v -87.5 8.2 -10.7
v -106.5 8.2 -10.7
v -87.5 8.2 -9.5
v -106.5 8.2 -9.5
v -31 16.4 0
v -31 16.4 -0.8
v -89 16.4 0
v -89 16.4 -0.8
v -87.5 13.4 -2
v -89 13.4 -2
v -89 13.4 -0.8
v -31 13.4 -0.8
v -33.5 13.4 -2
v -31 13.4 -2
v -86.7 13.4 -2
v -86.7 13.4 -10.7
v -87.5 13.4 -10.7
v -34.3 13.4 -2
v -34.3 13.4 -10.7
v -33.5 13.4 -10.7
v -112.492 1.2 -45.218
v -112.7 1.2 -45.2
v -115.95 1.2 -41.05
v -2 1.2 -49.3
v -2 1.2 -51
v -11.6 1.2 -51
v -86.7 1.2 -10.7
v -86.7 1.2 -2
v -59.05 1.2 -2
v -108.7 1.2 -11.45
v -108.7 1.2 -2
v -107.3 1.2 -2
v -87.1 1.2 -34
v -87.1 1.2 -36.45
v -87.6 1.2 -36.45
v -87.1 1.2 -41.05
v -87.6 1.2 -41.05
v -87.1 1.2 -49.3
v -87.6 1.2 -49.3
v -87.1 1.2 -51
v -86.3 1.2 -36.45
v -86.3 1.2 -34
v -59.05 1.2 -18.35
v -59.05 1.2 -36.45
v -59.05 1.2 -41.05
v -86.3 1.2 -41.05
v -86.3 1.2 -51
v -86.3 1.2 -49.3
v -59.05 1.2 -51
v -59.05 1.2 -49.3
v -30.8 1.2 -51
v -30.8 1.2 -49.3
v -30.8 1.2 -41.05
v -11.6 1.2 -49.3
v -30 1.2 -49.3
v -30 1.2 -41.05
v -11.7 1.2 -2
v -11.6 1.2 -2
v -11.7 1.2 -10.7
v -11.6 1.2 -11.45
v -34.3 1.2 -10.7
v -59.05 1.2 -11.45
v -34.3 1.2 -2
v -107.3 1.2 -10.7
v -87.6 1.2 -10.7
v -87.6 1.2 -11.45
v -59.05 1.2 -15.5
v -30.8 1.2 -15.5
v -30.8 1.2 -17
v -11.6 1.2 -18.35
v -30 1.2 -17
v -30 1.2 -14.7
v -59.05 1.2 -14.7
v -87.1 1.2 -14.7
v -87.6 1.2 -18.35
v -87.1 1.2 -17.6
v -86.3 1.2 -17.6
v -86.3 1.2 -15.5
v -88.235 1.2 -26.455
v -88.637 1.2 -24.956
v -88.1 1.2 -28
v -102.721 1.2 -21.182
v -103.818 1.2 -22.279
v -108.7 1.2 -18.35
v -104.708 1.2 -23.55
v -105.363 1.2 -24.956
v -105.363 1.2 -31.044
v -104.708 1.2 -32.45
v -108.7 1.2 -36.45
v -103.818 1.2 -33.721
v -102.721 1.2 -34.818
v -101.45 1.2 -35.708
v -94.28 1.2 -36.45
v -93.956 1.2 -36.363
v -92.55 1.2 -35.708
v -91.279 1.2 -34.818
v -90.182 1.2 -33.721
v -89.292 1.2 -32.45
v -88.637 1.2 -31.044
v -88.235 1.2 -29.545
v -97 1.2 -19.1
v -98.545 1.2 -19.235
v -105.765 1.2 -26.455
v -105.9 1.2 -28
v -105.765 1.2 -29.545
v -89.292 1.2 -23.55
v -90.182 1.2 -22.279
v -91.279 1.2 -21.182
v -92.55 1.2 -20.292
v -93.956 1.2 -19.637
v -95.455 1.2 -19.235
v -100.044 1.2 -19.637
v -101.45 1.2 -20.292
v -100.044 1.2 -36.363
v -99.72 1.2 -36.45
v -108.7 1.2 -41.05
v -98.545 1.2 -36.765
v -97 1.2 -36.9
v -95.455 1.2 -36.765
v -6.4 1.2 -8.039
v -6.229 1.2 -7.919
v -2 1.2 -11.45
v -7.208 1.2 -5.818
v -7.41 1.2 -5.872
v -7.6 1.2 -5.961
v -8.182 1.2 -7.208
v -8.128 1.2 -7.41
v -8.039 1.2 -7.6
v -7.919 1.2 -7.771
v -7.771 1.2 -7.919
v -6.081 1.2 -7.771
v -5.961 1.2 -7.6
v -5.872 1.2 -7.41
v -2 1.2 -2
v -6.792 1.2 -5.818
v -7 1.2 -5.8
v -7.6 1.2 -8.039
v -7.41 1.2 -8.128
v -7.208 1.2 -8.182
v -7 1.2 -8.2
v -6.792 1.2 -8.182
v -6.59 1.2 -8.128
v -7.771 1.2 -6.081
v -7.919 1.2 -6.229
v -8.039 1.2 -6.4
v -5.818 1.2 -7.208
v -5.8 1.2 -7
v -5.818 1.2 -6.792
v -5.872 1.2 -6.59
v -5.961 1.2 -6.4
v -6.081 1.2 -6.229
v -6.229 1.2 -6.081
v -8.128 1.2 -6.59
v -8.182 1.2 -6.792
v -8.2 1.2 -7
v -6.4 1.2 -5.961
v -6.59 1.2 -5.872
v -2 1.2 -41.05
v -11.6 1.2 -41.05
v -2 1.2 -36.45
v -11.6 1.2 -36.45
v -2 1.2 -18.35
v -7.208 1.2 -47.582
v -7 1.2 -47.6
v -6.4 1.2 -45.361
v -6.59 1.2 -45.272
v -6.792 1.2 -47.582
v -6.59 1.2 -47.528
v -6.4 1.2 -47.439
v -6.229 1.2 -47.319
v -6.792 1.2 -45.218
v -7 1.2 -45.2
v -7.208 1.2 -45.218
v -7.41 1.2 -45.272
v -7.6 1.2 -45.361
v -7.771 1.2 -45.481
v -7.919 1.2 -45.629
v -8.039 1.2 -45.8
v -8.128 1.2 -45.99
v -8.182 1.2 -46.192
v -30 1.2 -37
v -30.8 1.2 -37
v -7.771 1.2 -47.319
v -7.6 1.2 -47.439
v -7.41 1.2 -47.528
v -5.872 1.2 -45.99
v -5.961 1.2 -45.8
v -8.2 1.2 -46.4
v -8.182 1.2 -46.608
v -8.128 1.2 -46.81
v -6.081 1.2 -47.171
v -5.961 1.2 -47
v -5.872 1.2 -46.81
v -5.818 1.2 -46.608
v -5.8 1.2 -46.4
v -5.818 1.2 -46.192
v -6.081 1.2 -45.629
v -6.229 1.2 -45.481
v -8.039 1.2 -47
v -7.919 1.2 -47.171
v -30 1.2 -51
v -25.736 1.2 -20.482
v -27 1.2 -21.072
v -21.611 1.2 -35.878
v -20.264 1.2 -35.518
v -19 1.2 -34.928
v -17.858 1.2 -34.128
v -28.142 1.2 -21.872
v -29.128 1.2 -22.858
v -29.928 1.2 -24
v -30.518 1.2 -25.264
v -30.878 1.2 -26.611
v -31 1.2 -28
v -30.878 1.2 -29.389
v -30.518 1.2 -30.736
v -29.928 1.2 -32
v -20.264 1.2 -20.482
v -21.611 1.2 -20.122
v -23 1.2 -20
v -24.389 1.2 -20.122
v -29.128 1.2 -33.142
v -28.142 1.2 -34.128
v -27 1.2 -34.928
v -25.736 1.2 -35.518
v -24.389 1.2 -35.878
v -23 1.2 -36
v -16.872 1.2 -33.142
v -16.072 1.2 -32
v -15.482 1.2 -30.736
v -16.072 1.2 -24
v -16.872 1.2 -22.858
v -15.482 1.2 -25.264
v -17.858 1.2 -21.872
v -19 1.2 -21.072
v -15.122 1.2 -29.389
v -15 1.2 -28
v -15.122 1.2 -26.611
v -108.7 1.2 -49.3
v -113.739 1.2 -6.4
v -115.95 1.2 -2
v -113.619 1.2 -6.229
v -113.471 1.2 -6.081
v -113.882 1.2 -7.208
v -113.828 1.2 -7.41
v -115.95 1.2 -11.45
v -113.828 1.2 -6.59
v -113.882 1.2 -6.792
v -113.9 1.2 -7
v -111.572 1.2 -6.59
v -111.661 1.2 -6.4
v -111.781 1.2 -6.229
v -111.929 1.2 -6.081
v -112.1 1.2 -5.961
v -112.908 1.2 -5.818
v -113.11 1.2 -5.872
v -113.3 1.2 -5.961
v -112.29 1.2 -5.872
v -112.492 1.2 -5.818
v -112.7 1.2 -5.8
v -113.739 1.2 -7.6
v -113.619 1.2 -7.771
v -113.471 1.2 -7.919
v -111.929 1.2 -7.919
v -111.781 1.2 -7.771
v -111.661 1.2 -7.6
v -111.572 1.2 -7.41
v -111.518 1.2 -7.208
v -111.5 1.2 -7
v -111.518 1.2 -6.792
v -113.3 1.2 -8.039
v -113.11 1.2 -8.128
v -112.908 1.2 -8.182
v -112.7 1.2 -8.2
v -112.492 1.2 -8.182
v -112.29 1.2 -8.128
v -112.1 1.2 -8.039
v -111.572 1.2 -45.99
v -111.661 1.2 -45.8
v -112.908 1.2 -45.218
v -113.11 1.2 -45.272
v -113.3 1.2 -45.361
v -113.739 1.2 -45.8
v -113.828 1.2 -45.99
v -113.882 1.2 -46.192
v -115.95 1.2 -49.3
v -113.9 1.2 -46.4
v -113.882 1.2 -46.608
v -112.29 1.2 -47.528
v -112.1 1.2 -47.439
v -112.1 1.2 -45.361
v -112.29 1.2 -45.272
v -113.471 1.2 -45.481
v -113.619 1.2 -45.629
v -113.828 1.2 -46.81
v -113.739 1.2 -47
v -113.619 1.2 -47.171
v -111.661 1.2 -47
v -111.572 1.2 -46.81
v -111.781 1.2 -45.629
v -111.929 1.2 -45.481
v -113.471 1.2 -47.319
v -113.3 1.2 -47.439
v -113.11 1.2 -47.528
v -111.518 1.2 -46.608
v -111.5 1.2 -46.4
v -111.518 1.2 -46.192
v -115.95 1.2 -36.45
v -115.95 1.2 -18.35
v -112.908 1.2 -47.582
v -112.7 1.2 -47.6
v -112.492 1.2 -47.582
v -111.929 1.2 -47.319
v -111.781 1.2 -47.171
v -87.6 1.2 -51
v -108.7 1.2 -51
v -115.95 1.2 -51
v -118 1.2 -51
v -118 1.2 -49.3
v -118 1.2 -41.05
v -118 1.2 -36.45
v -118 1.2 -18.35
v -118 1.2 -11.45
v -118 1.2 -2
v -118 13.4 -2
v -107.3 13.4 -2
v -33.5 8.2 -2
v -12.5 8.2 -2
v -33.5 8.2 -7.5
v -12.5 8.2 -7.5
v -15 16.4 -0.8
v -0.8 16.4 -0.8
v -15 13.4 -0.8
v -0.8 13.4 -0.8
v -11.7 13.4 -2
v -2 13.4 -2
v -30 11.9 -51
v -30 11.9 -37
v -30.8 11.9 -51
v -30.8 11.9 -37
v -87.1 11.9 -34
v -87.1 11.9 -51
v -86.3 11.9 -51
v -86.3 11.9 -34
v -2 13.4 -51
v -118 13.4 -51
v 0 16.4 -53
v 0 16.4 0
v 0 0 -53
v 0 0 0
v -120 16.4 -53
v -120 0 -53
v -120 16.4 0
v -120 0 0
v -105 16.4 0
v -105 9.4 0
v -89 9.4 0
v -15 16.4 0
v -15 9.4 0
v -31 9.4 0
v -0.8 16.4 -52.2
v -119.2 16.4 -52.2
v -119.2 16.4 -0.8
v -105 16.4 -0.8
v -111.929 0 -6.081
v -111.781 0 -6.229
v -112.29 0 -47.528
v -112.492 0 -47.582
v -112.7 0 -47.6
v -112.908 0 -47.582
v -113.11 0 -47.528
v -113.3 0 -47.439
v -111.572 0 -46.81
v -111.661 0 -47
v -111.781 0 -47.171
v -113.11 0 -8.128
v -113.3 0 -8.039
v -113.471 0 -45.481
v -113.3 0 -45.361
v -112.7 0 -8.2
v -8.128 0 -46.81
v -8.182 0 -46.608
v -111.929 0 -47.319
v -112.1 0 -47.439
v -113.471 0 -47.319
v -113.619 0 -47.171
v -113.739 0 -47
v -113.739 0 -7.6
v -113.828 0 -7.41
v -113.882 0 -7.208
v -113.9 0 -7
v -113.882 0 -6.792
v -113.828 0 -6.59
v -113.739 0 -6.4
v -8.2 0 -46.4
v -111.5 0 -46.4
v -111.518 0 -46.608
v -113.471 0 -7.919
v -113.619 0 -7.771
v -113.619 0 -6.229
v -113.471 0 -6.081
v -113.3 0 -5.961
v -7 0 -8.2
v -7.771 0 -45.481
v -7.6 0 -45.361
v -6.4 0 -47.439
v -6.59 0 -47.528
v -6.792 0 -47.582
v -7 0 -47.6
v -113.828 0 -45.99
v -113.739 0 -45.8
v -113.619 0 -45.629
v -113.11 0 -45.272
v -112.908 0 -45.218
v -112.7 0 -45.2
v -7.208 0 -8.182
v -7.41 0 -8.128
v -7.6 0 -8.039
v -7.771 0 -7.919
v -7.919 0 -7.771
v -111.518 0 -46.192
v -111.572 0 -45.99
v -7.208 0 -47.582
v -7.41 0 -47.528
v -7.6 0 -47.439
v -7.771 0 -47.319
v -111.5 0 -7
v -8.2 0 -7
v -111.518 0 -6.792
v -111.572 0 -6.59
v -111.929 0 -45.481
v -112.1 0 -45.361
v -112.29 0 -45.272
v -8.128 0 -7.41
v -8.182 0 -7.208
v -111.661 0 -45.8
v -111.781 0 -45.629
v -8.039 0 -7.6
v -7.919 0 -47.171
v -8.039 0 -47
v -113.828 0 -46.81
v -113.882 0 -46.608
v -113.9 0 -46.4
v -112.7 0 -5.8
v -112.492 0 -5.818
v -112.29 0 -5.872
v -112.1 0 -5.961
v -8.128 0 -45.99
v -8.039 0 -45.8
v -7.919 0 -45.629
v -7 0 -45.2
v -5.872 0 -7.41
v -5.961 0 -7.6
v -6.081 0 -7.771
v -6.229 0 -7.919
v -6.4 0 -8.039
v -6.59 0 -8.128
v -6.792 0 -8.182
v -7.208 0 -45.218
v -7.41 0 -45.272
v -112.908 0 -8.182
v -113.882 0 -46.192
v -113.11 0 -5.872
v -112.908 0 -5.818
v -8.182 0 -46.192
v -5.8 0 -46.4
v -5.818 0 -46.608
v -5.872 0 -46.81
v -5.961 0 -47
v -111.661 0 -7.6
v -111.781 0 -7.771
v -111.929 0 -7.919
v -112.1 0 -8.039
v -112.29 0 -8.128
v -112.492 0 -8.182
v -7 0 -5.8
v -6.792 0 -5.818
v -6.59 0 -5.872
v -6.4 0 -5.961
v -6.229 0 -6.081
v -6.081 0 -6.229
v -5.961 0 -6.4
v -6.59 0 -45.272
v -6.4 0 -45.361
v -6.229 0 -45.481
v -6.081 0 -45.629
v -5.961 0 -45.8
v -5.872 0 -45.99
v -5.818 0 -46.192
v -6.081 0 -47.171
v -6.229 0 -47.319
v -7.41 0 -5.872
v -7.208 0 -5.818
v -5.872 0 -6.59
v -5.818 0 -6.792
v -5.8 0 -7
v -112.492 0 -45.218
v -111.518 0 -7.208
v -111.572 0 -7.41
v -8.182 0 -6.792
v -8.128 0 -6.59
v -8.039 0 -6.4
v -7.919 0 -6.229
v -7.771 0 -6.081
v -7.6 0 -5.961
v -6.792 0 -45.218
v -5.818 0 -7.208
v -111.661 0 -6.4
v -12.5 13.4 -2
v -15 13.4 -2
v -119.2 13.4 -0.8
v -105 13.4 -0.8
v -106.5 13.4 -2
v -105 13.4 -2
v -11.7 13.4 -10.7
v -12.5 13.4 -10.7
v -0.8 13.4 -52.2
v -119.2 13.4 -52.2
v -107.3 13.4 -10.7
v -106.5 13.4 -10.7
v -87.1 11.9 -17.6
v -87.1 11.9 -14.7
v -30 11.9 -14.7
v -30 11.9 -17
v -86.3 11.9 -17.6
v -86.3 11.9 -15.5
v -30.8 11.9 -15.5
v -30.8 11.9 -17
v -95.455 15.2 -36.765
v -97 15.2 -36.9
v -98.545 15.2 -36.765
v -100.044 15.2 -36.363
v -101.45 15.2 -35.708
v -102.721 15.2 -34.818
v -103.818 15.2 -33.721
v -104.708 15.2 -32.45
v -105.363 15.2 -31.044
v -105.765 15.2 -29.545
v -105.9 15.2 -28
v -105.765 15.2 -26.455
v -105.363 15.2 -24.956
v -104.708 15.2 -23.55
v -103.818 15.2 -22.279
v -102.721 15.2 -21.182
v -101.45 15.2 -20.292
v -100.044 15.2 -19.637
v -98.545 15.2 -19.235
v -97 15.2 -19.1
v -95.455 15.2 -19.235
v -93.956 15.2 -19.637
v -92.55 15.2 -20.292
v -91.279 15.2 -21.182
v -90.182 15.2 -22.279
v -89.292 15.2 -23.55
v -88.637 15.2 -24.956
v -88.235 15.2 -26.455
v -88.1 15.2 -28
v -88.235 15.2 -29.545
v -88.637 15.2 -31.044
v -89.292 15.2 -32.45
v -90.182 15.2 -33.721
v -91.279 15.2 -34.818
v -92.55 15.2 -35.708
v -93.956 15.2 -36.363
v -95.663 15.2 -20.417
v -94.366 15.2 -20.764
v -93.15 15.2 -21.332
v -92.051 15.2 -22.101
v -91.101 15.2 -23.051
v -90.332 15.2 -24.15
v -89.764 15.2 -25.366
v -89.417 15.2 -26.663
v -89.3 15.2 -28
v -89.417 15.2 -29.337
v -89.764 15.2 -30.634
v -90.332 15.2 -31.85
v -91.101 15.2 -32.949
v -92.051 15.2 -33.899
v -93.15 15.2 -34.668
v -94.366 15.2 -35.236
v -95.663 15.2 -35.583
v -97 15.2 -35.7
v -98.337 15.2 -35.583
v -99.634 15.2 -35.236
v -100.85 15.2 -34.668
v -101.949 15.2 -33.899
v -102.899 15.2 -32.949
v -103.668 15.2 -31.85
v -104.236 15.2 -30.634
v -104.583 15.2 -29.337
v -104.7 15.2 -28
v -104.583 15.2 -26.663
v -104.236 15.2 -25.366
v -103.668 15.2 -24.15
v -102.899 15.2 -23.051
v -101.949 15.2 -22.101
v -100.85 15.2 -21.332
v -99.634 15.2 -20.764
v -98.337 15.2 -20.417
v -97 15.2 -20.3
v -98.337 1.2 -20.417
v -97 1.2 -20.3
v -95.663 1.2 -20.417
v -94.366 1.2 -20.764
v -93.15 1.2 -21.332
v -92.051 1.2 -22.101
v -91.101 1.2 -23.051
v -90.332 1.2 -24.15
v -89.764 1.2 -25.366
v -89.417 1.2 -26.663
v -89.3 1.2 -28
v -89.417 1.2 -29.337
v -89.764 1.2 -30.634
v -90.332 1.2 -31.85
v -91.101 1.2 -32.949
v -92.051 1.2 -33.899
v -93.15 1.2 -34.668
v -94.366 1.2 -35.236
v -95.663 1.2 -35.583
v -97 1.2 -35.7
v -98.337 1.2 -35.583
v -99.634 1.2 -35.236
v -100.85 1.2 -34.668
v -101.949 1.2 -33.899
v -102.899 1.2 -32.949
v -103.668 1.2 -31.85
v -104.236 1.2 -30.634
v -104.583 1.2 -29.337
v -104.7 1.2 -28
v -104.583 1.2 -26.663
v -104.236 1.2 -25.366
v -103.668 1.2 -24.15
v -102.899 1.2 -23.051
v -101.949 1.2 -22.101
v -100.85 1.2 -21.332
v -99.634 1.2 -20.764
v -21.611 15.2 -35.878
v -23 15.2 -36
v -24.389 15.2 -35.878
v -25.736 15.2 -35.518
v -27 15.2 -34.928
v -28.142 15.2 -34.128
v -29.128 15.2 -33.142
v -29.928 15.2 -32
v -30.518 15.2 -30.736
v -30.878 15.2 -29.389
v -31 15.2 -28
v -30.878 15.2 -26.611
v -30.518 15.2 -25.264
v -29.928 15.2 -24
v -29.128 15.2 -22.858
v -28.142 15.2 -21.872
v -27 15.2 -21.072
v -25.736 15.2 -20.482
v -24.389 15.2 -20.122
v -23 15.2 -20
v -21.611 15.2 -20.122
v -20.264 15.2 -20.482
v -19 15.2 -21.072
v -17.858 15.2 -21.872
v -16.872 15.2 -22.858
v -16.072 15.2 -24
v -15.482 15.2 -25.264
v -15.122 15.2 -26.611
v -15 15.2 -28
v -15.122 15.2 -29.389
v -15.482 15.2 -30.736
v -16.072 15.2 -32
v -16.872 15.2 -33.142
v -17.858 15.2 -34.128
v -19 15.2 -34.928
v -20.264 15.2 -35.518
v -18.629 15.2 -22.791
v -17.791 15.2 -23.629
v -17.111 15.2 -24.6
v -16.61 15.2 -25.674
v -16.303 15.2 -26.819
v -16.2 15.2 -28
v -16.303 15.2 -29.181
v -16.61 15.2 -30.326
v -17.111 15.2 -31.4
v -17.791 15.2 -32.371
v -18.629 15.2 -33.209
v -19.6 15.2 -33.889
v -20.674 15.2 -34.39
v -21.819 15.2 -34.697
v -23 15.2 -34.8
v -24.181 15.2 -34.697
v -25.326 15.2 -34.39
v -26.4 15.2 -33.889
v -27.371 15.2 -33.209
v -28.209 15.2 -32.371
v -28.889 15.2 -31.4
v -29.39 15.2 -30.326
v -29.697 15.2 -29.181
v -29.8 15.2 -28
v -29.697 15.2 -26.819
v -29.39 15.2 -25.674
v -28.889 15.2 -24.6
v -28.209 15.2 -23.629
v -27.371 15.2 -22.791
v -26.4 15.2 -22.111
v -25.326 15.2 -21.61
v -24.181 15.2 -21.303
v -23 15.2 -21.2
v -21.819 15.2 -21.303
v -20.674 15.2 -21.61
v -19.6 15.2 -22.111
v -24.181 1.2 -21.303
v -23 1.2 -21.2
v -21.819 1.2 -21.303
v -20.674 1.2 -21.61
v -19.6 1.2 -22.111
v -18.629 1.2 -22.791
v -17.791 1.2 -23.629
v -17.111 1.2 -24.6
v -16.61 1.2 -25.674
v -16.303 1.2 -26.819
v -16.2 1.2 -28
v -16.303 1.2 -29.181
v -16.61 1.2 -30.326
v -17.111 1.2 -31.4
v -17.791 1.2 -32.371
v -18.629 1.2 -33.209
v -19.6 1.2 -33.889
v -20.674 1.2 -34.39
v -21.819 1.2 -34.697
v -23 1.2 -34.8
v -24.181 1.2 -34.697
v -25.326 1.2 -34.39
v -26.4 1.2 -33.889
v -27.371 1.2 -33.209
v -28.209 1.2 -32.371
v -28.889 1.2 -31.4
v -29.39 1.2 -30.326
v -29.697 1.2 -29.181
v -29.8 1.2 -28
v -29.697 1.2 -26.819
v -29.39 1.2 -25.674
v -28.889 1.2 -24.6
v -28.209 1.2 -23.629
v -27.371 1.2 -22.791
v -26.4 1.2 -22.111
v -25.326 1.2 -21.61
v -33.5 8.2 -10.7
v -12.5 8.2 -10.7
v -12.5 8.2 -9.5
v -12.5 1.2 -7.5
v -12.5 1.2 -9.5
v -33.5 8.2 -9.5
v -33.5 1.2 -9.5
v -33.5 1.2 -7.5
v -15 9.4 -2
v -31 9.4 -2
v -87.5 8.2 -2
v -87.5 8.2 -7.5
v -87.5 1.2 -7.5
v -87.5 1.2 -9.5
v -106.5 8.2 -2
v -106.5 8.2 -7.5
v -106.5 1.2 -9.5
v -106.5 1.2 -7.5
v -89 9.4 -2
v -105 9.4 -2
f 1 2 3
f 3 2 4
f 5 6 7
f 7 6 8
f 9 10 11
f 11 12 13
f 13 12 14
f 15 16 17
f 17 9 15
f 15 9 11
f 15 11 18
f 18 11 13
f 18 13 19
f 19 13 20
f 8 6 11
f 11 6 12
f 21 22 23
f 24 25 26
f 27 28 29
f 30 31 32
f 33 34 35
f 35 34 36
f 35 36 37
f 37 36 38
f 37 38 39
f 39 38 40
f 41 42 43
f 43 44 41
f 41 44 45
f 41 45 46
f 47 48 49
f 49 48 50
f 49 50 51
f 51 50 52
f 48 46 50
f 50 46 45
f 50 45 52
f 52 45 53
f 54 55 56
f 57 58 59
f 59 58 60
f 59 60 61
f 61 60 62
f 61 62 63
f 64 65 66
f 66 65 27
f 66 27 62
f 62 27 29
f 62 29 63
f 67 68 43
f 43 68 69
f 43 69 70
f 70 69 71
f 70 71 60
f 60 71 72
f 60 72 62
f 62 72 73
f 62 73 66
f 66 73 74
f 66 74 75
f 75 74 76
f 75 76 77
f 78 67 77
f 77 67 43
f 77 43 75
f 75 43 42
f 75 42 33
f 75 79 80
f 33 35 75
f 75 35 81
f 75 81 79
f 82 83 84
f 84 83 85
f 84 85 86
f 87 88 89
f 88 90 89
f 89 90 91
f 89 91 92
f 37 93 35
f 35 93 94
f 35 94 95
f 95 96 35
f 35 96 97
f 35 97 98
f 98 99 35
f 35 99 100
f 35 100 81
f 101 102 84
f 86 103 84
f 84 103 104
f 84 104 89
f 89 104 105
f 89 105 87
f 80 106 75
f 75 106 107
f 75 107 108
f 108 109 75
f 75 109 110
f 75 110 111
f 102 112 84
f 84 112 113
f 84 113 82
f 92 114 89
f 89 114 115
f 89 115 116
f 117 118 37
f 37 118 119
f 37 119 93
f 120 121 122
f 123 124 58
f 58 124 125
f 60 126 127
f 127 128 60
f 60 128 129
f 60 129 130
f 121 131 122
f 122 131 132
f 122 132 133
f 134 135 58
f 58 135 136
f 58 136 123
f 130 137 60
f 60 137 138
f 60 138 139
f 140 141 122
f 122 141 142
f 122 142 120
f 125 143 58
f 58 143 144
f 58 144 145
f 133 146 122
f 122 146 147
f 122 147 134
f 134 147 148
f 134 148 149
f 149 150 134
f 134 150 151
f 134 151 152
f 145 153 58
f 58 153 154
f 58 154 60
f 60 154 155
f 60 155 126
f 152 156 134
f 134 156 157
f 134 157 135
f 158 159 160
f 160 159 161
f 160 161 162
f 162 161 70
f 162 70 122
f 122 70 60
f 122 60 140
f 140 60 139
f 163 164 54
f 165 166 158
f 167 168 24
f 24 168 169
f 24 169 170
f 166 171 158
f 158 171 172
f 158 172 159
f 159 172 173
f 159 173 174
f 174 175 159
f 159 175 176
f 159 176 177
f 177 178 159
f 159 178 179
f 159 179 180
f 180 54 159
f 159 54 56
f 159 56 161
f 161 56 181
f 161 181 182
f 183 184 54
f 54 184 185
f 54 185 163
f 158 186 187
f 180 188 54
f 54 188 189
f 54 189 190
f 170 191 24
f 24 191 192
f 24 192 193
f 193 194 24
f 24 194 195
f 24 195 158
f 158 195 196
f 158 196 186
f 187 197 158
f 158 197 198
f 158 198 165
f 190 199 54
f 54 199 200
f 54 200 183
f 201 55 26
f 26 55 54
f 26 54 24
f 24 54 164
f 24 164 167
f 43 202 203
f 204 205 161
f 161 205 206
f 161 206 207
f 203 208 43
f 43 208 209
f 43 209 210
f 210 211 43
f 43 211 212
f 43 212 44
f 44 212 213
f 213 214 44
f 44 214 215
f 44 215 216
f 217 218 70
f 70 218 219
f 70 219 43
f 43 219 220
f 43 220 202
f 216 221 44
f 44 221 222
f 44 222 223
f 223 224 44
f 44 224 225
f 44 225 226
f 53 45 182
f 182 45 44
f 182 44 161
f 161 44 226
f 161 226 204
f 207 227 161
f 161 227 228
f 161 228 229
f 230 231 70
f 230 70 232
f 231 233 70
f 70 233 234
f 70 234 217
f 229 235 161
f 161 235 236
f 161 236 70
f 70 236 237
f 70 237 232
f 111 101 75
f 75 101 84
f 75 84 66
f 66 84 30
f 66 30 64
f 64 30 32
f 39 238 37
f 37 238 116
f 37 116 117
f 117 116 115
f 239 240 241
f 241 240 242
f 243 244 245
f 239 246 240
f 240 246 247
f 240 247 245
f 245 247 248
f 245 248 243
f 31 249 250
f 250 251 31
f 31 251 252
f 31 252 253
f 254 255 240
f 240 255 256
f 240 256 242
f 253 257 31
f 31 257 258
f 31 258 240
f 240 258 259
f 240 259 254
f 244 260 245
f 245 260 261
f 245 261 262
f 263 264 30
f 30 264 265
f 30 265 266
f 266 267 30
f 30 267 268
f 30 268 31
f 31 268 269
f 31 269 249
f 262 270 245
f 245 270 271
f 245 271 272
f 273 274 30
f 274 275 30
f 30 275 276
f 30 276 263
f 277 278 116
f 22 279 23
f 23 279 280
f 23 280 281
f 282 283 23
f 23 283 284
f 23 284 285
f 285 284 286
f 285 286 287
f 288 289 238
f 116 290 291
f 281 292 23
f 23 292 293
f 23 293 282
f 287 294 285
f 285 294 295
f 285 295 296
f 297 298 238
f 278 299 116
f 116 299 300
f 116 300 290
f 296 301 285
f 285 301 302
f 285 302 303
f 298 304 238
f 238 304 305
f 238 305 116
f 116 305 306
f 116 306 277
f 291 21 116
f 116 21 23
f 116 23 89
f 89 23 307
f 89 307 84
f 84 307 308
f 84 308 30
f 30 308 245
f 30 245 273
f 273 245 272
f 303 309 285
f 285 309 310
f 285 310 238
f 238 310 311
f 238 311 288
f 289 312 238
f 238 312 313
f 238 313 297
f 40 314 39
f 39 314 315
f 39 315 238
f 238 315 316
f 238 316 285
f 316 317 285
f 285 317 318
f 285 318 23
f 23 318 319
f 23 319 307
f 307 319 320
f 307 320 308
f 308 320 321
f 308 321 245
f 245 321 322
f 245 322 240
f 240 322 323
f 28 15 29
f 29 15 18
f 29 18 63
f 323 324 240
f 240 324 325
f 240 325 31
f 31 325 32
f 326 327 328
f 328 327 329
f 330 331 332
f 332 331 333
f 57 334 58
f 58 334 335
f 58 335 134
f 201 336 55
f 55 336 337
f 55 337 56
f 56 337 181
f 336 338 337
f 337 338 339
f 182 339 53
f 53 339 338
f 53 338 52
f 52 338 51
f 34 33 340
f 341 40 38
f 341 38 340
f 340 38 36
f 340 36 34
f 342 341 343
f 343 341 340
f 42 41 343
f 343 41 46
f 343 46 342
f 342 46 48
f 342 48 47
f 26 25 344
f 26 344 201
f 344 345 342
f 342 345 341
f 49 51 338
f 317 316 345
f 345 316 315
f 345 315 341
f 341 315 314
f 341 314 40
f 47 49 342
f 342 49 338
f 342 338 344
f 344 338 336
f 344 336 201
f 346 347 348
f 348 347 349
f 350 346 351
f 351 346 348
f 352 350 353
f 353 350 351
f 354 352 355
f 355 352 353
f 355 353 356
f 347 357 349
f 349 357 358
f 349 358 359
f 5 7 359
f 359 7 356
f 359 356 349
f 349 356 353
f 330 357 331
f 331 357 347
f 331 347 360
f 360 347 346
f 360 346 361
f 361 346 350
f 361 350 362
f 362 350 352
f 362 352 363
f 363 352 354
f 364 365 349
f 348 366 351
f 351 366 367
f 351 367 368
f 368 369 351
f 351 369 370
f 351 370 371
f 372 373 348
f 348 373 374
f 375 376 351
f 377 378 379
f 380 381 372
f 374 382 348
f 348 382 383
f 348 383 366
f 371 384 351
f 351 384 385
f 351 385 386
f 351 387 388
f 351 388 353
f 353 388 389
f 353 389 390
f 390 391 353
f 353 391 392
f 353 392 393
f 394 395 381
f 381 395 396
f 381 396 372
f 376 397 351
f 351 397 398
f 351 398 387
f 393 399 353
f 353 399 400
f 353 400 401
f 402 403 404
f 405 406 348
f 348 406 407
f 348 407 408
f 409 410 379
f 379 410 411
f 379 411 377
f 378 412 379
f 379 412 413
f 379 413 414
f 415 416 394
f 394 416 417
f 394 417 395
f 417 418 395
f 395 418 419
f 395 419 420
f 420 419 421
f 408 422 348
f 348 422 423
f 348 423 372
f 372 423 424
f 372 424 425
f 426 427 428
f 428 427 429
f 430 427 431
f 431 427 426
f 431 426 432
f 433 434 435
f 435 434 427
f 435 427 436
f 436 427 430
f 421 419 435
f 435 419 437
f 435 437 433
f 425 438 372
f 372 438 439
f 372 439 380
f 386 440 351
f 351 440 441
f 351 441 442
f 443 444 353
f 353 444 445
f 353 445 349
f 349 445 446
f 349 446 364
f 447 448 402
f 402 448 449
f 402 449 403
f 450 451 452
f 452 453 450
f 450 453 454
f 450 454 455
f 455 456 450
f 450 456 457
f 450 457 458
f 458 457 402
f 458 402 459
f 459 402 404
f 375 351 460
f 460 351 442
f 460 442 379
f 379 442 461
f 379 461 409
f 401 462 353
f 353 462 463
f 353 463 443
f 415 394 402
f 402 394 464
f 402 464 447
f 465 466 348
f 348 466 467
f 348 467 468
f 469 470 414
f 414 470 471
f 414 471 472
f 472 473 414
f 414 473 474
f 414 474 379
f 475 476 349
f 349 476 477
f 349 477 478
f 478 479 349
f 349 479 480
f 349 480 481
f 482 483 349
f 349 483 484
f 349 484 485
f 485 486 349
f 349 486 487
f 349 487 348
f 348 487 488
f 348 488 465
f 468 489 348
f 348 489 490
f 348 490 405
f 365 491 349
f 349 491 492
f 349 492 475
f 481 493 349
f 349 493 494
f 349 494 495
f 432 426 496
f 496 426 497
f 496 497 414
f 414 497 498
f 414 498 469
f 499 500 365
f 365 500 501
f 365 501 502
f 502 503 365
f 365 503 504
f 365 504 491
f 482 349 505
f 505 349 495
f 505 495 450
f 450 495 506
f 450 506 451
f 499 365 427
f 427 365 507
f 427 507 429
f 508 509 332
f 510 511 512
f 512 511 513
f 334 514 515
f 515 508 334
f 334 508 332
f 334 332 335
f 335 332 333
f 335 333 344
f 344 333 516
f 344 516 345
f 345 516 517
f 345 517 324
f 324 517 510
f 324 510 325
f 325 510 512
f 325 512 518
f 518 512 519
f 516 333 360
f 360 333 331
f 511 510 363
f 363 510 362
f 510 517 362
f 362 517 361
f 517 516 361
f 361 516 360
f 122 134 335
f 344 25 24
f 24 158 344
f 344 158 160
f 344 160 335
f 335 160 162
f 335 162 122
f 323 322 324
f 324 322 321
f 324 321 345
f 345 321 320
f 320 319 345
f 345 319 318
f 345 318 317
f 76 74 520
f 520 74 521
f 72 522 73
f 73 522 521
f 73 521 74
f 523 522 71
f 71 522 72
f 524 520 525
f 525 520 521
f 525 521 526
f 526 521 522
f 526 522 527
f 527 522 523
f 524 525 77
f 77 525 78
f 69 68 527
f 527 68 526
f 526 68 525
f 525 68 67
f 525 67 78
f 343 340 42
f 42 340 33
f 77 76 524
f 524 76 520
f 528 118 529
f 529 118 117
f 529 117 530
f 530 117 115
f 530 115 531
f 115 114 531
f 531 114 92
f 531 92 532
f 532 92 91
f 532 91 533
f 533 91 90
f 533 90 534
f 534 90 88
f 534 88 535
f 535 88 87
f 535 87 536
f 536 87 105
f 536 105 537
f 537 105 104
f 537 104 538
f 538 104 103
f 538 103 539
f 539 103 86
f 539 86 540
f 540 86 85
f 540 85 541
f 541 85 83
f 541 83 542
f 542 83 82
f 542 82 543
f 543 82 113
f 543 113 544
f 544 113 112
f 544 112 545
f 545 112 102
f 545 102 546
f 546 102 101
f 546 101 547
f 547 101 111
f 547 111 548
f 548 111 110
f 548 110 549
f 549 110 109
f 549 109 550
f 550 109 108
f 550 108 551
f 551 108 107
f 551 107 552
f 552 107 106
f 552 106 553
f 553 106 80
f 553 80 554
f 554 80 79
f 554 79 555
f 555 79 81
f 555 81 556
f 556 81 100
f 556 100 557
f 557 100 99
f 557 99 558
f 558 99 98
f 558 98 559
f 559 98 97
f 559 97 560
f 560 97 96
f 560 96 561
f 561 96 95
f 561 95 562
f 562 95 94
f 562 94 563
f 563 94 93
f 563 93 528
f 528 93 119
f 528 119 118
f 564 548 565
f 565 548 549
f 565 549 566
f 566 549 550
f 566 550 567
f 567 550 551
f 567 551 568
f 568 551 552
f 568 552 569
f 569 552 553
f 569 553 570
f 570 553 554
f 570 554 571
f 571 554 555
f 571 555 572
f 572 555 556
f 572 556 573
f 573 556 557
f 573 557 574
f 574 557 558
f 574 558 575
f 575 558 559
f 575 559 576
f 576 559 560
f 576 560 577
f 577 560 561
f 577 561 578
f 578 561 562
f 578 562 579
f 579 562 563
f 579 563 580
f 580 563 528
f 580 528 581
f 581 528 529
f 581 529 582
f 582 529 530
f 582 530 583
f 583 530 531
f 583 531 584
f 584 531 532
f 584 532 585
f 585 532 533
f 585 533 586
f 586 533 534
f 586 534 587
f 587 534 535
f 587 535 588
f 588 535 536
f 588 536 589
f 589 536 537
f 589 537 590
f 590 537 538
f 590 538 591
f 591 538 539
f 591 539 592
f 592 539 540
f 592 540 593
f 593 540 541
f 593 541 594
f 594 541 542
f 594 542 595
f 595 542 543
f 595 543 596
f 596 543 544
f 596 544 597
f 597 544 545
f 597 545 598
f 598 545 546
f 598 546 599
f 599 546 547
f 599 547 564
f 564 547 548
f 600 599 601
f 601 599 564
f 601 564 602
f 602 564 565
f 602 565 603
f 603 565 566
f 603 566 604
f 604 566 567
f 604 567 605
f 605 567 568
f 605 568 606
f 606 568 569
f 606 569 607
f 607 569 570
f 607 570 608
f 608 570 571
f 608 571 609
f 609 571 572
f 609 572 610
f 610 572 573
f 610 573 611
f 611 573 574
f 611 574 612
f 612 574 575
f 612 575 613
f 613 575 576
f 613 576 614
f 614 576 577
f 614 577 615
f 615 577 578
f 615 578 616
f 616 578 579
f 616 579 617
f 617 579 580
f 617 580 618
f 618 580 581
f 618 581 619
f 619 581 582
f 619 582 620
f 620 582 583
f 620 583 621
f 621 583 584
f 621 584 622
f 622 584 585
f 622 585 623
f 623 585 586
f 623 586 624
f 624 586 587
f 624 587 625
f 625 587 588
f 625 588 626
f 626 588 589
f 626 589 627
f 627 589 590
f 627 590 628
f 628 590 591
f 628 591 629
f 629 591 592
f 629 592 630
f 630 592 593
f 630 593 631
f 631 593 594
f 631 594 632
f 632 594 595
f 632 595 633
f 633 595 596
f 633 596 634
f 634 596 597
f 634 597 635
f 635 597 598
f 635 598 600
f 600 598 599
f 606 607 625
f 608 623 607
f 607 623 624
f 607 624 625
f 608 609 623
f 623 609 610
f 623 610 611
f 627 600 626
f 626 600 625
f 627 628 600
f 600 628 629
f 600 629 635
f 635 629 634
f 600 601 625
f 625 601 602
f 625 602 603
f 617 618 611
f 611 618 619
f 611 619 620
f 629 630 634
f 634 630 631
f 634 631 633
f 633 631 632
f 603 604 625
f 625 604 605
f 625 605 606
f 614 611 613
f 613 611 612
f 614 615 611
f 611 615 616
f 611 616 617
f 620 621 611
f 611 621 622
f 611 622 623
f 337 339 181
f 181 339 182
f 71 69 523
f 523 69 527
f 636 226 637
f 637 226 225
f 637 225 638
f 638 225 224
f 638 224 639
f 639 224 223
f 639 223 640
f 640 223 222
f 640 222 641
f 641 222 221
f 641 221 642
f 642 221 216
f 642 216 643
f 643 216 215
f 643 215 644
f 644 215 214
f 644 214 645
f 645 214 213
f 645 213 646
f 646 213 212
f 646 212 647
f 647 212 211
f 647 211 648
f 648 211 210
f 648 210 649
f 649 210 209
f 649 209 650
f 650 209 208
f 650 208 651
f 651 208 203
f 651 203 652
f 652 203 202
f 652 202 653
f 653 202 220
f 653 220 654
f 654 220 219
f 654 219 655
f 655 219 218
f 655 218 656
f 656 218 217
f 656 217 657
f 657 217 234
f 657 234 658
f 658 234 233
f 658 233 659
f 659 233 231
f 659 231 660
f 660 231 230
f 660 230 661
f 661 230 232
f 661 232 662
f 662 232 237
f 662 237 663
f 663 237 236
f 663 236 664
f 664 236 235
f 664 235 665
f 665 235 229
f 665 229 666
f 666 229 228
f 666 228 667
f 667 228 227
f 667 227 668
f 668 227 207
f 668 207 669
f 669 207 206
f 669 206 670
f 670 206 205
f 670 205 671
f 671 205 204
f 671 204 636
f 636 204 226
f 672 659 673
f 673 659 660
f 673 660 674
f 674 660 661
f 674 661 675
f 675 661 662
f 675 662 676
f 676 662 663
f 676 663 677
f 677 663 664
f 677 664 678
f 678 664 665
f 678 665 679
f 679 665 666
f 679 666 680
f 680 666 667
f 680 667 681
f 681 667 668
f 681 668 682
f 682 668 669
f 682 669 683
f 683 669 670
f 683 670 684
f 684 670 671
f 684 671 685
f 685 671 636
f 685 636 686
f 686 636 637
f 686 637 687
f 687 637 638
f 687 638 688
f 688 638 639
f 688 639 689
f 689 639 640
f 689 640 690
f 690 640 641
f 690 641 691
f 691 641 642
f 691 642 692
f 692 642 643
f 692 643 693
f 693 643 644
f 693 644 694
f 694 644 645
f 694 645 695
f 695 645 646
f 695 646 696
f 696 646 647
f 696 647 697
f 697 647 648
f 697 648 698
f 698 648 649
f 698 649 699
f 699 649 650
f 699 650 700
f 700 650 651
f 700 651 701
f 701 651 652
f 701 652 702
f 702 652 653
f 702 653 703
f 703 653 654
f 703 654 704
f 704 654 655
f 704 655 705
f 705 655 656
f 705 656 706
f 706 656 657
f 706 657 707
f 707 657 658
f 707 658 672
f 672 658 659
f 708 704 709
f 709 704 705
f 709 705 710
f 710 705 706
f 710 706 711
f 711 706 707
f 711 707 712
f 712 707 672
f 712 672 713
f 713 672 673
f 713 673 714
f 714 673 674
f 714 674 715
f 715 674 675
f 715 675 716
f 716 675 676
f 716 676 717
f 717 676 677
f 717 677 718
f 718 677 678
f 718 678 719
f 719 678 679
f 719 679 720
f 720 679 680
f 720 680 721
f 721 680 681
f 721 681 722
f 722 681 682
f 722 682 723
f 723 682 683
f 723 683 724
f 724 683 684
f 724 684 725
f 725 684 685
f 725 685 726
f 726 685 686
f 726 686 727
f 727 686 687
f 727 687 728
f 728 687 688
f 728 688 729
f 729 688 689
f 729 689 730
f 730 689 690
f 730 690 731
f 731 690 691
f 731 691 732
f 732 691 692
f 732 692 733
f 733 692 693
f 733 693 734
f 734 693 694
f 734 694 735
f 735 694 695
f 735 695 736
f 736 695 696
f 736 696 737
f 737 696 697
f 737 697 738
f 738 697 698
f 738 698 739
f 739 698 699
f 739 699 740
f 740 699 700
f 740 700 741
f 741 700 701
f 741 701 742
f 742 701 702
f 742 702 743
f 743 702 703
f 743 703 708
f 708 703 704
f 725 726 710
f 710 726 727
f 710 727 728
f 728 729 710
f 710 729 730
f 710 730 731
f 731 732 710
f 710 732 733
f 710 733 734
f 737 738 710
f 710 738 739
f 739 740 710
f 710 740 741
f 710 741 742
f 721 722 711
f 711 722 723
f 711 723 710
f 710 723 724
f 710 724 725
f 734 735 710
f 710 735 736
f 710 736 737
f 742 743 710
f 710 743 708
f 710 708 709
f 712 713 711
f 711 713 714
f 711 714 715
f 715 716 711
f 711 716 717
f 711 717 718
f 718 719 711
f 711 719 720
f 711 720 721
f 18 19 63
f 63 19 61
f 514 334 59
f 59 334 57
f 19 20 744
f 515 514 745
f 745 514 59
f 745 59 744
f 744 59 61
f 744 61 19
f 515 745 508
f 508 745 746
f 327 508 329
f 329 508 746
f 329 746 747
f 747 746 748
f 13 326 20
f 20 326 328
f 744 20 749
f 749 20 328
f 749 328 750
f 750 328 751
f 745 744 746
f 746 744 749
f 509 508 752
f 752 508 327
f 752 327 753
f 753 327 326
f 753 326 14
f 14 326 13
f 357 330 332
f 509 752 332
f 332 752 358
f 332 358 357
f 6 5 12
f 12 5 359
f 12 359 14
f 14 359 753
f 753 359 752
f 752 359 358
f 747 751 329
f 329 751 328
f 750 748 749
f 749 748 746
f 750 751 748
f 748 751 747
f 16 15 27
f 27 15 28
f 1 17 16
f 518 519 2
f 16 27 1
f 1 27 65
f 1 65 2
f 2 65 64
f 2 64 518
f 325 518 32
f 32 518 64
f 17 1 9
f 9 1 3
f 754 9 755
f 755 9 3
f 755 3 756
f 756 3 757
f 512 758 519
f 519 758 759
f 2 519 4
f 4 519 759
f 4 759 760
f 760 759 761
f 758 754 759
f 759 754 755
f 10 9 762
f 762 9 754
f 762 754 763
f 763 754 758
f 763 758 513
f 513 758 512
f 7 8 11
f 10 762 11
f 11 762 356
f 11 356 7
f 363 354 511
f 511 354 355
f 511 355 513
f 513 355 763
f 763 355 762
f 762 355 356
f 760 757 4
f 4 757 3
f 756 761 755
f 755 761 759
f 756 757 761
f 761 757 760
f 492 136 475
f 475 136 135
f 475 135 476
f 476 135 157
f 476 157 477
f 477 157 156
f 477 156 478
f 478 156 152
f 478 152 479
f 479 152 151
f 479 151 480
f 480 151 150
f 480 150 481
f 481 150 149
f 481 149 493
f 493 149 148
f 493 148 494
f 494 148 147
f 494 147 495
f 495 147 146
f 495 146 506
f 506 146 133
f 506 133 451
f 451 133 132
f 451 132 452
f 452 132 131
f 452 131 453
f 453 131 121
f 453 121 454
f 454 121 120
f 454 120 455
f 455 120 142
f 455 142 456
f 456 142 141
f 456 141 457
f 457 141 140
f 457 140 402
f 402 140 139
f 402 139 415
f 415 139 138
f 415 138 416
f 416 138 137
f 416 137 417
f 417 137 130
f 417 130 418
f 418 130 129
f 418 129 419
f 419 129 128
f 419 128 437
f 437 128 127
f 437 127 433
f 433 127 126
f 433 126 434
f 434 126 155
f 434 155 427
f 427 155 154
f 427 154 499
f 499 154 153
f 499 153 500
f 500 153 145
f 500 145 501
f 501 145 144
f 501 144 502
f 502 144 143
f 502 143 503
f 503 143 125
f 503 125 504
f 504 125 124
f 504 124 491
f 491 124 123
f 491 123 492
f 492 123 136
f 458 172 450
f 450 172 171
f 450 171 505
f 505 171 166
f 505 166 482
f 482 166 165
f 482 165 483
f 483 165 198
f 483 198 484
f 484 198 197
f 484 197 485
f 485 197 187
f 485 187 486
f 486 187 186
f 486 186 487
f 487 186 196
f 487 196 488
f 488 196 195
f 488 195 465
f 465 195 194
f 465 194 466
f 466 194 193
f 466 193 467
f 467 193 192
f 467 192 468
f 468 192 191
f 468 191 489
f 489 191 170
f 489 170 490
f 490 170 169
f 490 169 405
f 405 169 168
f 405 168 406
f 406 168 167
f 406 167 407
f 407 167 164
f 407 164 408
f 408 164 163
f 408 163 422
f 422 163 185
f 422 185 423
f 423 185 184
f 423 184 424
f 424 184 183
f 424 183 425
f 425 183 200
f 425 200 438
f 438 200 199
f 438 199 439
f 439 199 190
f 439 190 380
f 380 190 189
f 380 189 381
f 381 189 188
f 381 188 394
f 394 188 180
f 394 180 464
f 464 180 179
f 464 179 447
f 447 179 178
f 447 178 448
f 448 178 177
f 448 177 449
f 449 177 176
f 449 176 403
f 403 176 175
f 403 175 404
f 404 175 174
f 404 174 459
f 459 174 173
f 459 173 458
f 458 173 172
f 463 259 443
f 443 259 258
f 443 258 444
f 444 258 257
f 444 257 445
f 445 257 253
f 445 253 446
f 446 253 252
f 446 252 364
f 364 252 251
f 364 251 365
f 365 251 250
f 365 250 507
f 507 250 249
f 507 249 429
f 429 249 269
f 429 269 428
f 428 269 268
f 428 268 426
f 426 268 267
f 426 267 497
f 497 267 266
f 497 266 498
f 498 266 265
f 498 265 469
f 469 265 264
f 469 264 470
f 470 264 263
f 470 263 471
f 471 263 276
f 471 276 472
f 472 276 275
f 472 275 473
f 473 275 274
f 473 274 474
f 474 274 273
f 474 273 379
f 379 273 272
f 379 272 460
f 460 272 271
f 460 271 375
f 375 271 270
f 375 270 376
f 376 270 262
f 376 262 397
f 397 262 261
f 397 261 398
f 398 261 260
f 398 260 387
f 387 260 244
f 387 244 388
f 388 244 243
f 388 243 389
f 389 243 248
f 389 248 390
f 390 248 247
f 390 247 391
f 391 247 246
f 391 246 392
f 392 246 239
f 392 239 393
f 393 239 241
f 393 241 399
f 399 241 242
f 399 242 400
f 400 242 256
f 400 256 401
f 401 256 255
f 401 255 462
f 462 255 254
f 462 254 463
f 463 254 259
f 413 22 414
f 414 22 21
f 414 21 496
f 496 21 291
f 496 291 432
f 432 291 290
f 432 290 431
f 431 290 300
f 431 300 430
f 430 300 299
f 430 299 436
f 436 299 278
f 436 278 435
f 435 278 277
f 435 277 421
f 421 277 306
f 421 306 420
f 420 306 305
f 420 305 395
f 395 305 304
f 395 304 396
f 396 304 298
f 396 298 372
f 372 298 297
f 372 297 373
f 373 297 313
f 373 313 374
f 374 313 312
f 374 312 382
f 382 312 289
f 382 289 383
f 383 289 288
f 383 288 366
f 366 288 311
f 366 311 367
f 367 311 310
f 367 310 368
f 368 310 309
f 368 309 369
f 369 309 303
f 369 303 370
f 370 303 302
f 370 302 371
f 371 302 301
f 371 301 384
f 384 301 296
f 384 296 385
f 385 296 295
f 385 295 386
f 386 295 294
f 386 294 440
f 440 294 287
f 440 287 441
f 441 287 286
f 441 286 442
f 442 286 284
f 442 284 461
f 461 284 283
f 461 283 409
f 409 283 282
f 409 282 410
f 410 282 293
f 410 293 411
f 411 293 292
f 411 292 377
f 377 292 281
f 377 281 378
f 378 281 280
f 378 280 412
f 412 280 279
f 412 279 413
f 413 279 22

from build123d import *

# Parameters (mm, degrees)
SKETCH_1_W           = 120
SKETCH_1_H           = 53
EXTRUDE_2_DEPTH      = 16.4
SKETCH_4_W           = 116
SKETCH_4_H           = 49
CUT_EXTRUDE_5_DEPTH  = 15.2
SKETCH_5_W           = 118.4
SKETCH_5_H           = 51.4
CUT_EXTRUDE_6_DEPTH  = 3
SKETCH_6_W           = 57.1
SKETCH_6_H           = 36.3
EXTRUDE_3_DEPTH      = 10.7
SKETCH_7_W           = 55.5
SKETCH_7_H           = 35.5
CUT_EXTRUDE_7_DEPTH  = 10.7
SKETCH_8_W           = 3.401063497
SKETCH_8_H           = 16.4
CUT_EXTRUDE_8_DEPTH  = 10.7
SKETCH_9_R           = 8.9
EXTRUDE_4_DEPTH      = 14
SKETCH_10_R          = 7.7
CUT_EXTRUDE_9_DEPTH  = 14
SKETCH_12_W          = 1.431066628
SKETCH_12_H          = 20
CUT_EXTRUDE_10_DEPTH = 10.7
SKETCH_11_R          = 8
EXTRUDE_8_DEPTH      = 14
SKETCH_13_R          = 6.8
CUT_EXTRUDE_11_DEPTH = 14
SKETCH_14_W          = 22.6
SKETCH_14_H          = 8.7
EXTRUDE_9_DEPTH      = 12.2
SKETCH_15_W          = 21
SKETCH_15_H          = 9.750364289
CUT_EXTRUDE_12_DEPTH = 5.2
SKETCH_16_W          = 16
SKETCH_16_H          = 2
CUT_EXTRUDE_13_DEPTH = 7
SKETCH_18_W          = 21
SKETCH_18_H          = 2
CUT_EXTRUDE_14_DEPTH = 7
SKETCH_19_W          = 20.6
SKETCH_19_H          = 8.7
EXTRUDE_10_DEPTH     = 12.2
SKETCH_21_W          = 19
SKETCH_21_H          = 9.521560297
CUT_EXTRUDE_15_DEPTH = 5.2
SKETCH_23_W          = 16
SKETCH_23_H          = 2
CUT_EXTRUDE_16_DEPTH = 7
SKETCH_24_W          = 19
SKETCH_24_H          = 2
CUT_EXTRUDE_17_DEPTH = 7
SKETCH_25_R          = 1.2
CUT_EXTRUDE_18_DEPTH = 5
SKETCH_26_R          = 1.2
CUT_EXTRUDE_19_DEPTH = 5
SKETCH_27_R          = 1.2
CUT_EXTRUDE_20_DEPTH = 5
SKETCH_28_R          = 1.2
CUT_EXTRUDE_21_DEPTH = 5


with BuildPart() as part:
    # 草图1 → 凸台-拉伸2 (new body)
    with BuildSketch(Plane(origin=(0, 0, 0), x_dir=(1, 0, 0), z_dir=(0, 1, 0))):
        with Locations((-60, 26.5)):
            Rectangle(SKETCH_1_W, SKETCH_1_H)
    extrude(amount=EXTRUDE_2_DEPTH)

    # 草图4 → 切除-拉伸5 (cut)
    with BuildSketch(Plane(origin=(0, 16.4, 0), x_dir=(1, 0, 0), z_dir=(0, 1, 0))):
        with Locations((-60, 26.5)):
            Rectangle(SKETCH_4_W, SKETCH_4_H)
    extrude(amount=-CUT_EXTRUDE_5_DEPTH, mode=Mode.SUBTRACT)

    # 草图5 → 切除-拉伸6 (cut)
    with BuildSketch(Plane(origin=(0, 16.4, 0), x_dir=(1, 0, 0), z_dir=(0, 1, 0))):
        with Locations((-60, 26.5)):
            Rectangle(SKETCH_5_W, SKETCH_5_H)
    extrude(amount=-CUT_EXTRUDE_6_DEPTH, mode=Mode.SUBTRACT)

    # 草图6 → 凸台-拉伸3 (add)
    with BuildSketch(Plane(origin=(0, 1.2, 0), x_dir=(1, 0, 0), z_dir=(0, 1, 0))):
        with Locations((-58.55, 32.85)):
            Rectangle(SKETCH_6_W, SKETCH_6_H)
    extrude(amount=EXTRUDE_3_DEPTH)

    # 草图7 → 切除-拉伸7 (cut)
    with BuildSketch(Plane(origin=(0, 11.9, 0), x_dir=(1, 0, 0), z_dir=(0, 1, 0))):
        with Locations((-58.55, 33.25)):
            Rectangle(SKETCH_7_W, SKETCH_7_H)
    extrude(amount=-CUT_EXTRUDE_7_DEPTH, mode=Mode.SUBTRACT)

    # 草图8 → 切除-拉伸8 (cut)
    with BuildSketch(Plane(origin=(0, 11.9, 0), x_dir=(1, 0, 0), z_dir=(0, 1, 0))):
        with Locations((-86.528295274, 25.8)):
            Rectangle(SKETCH_8_W, SKETCH_8_H)
    extrude(amount=-CUT_EXTRUDE_8_DEPTH, mode=Mode.SUBTRACT)

    # 草图9 → 凸台-拉伸4 (add)
    with BuildSketch(Plane(origin=(0, 1.2, 0), x_dir=(1, 0, 0), z_dir=(0, 1, 0))):
        with Locations(Location((-97, 28, 0), (0, 0, 270))):
            Circle(SKETCH_9_R)
    extrude(amount=EXTRUDE_4_DEPTH)

    # 草图10 → 切除-拉伸9 (cut)
    with BuildSketch(Plane(origin=(0, 15.2, 0), x_dir=(1, 0, 0), z_dir=(0, 1, 0))):
        with Locations(Location((-97, 28, 0), (0, 0, 270))):
            Circle(SKETCH_10_R)
    extrude(amount=-CUT_EXTRUDE_9_DEPTH, mode=Mode.SUBTRACT)

    # 草图12 → 切除-拉伸10 (cut)
    with BuildSketch(Plane(origin=(0, 11.9, 0), x_dir=(1, 0, 0), z_dir=(0, 1, 0))):
        with Locations((-30.715533314, 27)):
            Rectangle(SKETCH_12_W, SKETCH_12_H)
    extrude(amount=-CUT_EXTRUDE_10_DEPTH, mode=Mode.SUBTRACT)

    # 草图11 → 凸台-拉伸8 (add)
    with BuildSketch(Plane(origin=(0, 1.2, 0), x_dir=(1, 0, 0), z_dir=(0, 1, 0))):
        with Locations(Location((-23, 28, 0), (0, 0, 270))):
            Circle(SKETCH_11_R)
    extrude(amount=EXTRUDE_8_DEPTH)

    # 草图13 → 切除-拉伸11 (cut)
    with BuildSketch(Plane(origin=(0, 15.2, 0), x_dir=(1, 0, 0), z_dir=(0, 1, 0))):
        with Locations(Location((-23, 28, 0), (0, 0, 270))):
            Circle(SKETCH_13_R)
    extrude(amount=-CUT_EXTRUDE_11_DEPTH, mode=Mode.SUBTRACT)

    # 草图14 → 凸台-拉伸9 (add)
    with BuildSketch(Plane(origin=(0, 1.2, 0), x_dir=(1, 0, 0), z_dir=(0, 1, 0))):
        with Locations((-23, 6.35)):
            Rectangle(SKETCH_14_W, SKETCH_14_H)
    extrude(amount=EXTRUDE_9_DEPTH)

    # 草图15 → 切除-拉伸12 (cut)
    with BuildSketch(Plane(origin=(0, 13.4, 0), x_dir=(1, 0, 0), z_dir=(0, 1, 0))):
        with Locations((-23, 6.875182145)):
            Rectangle(SKETCH_15_W, SKETCH_15_H)
    extrude(amount=-CUT_EXTRUDE_12_DEPTH, mode=Mode.SUBTRACT)

    # 草图16 → 切除-拉伸13 (cut)
    with BuildSketch(Plane(origin=(0, 16.4, 0), x_dir=(1, 0, 0), z_dir=(0, 1, 0))):
        with Locations((-23, 1)):
            Rectangle(SKETCH_16_W, SKETCH_16_H)
    extrude(amount=-CUT_EXTRUDE_13_DEPTH, mode=Mode.SUBTRACT)

    # 草图18 → 切除-拉伸14 (cut)
    with BuildSketch(Plane(origin=(0, 8.2, 0), x_dir=(1, 0, 0), z_dir=(0, 1, 0))):
        with Locations((-23, 8.5)):
            Rectangle(SKETCH_18_W, SKETCH_18_H)
    extrude(amount=-CUT_EXTRUDE_14_DEPTH, mode=Mode.SUBTRACT)

    # 草图19 → 凸台-拉伸10 (add)
    with BuildSketch(Plane(origin=(0, 1.2, 0), x_dir=(1, 0, 0), z_dir=(0, 1, 0))):
        with Locations((-97, 6.35)):
            Rectangle(SKETCH_19_W, SKETCH_19_H)
    extrude(amount=EXTRUDE_10_DEPTH)

    # 草图21 → 切除-拉伸15 (cut)
    with BuildSketch(Plane(origin=(0, 13.4, 0), x_dir=(1, 0, 0), z_dir=(0, 1, 0))):
        with Locations((-97, 6.760780149)):
            Rectangle(SKETCH_21_W, SKETCH_21_H)
    extrude(amount=-CUT_EXTRUDE_15_DEPTH, mode=Mode.SUBTRACT)

    # 草图23 → 切除-拉伸16 (cut)
    with BuildSketch(Plane(origin=(0, 16.4, 0), x_dir=(1, 0, 0), z_dir=(0, 1, 0))):
        with Locations((-97, 1)):
            Rectangle(SKETCH_23_W, SKETCH_23_H)
    extrude(amount=-CUT_EXTRUDE_16_DEPTH, mode=Mode.SUBTRACT)

    # 草图24 → 切除-拉伸17 (cut)
    with BuildSketch(Plane(origin=(0, 8.2, 0), x_dir=(1, 0, 0), z_dir=(0, 1, 0))):
        with Locations((-97, 8.5)):
            Rectangle(SKETCH_24_W, SKETCH_24_H)
    extrude(amount=-CUT_EXTRUDE_17_DEPTH, mode=Mode.SUBTRACT)

    # 草图25 → 切除-拉伸18 (cut)
    with BuildSketch(Plane(origin=(0, 1.2, 0), x_dir=(1, 0, 0), z_dir=(0, 1, 0))):
        with Locations(Location((-7, 7, 0), (0, 0, 270))):
            Circle(SKETCH_25_R)
    extrude(amount=-CUT_EXTRUDE_18_DEPTH, mode=Mode.SUBTRACT)

    # 草图26 → 切除-拉伸19 (cut)
    with BuildSketch(Plane(origin=(0, 1.2, 0), x_dir=(1, 0, 0), z_dir=(0, 1, 0))):
        with Locations(Location((-7, 46.4, 0), (0, 0, 270))):
            Circle(SKETCH_26_R)
    extrude(amount=-CUT_EXTRUDE_19_DEPTH, mode=Mode.SUBTRACT)

    # 草图27 → 切除-拉伸20 (cut)
    with BuildSketch(Plane(origin=(0, 1.2, 0), x_dir=(1, 0, 0), z_dir=(0, 1, 0))):
        with Locations(Location((-112.7, 7, 0), (0, 0, 270))):
            Circle(SKETCH_27_R)
    extrude(amount=-CUT_EXTRUDE_20_DEPTH, mode=Mode.SUBTRACT)

    # 草图28 → 切除-拉伸21 (cut)
    with BuildSketch(Plane(origin=(0, 1.2, 0), x_dir=(1, 0, 0), z_dir=(0, 1, 0))):
        with Locations(Location((-112.7, 46.4, 0), (0, 0, 270))):
            Circle(SKETCH_28_R)
    extrude(amount=-CUT_EXTRUDE_21_DEPTH, mode=Mode.SUBTRACT)


solid = part.part
